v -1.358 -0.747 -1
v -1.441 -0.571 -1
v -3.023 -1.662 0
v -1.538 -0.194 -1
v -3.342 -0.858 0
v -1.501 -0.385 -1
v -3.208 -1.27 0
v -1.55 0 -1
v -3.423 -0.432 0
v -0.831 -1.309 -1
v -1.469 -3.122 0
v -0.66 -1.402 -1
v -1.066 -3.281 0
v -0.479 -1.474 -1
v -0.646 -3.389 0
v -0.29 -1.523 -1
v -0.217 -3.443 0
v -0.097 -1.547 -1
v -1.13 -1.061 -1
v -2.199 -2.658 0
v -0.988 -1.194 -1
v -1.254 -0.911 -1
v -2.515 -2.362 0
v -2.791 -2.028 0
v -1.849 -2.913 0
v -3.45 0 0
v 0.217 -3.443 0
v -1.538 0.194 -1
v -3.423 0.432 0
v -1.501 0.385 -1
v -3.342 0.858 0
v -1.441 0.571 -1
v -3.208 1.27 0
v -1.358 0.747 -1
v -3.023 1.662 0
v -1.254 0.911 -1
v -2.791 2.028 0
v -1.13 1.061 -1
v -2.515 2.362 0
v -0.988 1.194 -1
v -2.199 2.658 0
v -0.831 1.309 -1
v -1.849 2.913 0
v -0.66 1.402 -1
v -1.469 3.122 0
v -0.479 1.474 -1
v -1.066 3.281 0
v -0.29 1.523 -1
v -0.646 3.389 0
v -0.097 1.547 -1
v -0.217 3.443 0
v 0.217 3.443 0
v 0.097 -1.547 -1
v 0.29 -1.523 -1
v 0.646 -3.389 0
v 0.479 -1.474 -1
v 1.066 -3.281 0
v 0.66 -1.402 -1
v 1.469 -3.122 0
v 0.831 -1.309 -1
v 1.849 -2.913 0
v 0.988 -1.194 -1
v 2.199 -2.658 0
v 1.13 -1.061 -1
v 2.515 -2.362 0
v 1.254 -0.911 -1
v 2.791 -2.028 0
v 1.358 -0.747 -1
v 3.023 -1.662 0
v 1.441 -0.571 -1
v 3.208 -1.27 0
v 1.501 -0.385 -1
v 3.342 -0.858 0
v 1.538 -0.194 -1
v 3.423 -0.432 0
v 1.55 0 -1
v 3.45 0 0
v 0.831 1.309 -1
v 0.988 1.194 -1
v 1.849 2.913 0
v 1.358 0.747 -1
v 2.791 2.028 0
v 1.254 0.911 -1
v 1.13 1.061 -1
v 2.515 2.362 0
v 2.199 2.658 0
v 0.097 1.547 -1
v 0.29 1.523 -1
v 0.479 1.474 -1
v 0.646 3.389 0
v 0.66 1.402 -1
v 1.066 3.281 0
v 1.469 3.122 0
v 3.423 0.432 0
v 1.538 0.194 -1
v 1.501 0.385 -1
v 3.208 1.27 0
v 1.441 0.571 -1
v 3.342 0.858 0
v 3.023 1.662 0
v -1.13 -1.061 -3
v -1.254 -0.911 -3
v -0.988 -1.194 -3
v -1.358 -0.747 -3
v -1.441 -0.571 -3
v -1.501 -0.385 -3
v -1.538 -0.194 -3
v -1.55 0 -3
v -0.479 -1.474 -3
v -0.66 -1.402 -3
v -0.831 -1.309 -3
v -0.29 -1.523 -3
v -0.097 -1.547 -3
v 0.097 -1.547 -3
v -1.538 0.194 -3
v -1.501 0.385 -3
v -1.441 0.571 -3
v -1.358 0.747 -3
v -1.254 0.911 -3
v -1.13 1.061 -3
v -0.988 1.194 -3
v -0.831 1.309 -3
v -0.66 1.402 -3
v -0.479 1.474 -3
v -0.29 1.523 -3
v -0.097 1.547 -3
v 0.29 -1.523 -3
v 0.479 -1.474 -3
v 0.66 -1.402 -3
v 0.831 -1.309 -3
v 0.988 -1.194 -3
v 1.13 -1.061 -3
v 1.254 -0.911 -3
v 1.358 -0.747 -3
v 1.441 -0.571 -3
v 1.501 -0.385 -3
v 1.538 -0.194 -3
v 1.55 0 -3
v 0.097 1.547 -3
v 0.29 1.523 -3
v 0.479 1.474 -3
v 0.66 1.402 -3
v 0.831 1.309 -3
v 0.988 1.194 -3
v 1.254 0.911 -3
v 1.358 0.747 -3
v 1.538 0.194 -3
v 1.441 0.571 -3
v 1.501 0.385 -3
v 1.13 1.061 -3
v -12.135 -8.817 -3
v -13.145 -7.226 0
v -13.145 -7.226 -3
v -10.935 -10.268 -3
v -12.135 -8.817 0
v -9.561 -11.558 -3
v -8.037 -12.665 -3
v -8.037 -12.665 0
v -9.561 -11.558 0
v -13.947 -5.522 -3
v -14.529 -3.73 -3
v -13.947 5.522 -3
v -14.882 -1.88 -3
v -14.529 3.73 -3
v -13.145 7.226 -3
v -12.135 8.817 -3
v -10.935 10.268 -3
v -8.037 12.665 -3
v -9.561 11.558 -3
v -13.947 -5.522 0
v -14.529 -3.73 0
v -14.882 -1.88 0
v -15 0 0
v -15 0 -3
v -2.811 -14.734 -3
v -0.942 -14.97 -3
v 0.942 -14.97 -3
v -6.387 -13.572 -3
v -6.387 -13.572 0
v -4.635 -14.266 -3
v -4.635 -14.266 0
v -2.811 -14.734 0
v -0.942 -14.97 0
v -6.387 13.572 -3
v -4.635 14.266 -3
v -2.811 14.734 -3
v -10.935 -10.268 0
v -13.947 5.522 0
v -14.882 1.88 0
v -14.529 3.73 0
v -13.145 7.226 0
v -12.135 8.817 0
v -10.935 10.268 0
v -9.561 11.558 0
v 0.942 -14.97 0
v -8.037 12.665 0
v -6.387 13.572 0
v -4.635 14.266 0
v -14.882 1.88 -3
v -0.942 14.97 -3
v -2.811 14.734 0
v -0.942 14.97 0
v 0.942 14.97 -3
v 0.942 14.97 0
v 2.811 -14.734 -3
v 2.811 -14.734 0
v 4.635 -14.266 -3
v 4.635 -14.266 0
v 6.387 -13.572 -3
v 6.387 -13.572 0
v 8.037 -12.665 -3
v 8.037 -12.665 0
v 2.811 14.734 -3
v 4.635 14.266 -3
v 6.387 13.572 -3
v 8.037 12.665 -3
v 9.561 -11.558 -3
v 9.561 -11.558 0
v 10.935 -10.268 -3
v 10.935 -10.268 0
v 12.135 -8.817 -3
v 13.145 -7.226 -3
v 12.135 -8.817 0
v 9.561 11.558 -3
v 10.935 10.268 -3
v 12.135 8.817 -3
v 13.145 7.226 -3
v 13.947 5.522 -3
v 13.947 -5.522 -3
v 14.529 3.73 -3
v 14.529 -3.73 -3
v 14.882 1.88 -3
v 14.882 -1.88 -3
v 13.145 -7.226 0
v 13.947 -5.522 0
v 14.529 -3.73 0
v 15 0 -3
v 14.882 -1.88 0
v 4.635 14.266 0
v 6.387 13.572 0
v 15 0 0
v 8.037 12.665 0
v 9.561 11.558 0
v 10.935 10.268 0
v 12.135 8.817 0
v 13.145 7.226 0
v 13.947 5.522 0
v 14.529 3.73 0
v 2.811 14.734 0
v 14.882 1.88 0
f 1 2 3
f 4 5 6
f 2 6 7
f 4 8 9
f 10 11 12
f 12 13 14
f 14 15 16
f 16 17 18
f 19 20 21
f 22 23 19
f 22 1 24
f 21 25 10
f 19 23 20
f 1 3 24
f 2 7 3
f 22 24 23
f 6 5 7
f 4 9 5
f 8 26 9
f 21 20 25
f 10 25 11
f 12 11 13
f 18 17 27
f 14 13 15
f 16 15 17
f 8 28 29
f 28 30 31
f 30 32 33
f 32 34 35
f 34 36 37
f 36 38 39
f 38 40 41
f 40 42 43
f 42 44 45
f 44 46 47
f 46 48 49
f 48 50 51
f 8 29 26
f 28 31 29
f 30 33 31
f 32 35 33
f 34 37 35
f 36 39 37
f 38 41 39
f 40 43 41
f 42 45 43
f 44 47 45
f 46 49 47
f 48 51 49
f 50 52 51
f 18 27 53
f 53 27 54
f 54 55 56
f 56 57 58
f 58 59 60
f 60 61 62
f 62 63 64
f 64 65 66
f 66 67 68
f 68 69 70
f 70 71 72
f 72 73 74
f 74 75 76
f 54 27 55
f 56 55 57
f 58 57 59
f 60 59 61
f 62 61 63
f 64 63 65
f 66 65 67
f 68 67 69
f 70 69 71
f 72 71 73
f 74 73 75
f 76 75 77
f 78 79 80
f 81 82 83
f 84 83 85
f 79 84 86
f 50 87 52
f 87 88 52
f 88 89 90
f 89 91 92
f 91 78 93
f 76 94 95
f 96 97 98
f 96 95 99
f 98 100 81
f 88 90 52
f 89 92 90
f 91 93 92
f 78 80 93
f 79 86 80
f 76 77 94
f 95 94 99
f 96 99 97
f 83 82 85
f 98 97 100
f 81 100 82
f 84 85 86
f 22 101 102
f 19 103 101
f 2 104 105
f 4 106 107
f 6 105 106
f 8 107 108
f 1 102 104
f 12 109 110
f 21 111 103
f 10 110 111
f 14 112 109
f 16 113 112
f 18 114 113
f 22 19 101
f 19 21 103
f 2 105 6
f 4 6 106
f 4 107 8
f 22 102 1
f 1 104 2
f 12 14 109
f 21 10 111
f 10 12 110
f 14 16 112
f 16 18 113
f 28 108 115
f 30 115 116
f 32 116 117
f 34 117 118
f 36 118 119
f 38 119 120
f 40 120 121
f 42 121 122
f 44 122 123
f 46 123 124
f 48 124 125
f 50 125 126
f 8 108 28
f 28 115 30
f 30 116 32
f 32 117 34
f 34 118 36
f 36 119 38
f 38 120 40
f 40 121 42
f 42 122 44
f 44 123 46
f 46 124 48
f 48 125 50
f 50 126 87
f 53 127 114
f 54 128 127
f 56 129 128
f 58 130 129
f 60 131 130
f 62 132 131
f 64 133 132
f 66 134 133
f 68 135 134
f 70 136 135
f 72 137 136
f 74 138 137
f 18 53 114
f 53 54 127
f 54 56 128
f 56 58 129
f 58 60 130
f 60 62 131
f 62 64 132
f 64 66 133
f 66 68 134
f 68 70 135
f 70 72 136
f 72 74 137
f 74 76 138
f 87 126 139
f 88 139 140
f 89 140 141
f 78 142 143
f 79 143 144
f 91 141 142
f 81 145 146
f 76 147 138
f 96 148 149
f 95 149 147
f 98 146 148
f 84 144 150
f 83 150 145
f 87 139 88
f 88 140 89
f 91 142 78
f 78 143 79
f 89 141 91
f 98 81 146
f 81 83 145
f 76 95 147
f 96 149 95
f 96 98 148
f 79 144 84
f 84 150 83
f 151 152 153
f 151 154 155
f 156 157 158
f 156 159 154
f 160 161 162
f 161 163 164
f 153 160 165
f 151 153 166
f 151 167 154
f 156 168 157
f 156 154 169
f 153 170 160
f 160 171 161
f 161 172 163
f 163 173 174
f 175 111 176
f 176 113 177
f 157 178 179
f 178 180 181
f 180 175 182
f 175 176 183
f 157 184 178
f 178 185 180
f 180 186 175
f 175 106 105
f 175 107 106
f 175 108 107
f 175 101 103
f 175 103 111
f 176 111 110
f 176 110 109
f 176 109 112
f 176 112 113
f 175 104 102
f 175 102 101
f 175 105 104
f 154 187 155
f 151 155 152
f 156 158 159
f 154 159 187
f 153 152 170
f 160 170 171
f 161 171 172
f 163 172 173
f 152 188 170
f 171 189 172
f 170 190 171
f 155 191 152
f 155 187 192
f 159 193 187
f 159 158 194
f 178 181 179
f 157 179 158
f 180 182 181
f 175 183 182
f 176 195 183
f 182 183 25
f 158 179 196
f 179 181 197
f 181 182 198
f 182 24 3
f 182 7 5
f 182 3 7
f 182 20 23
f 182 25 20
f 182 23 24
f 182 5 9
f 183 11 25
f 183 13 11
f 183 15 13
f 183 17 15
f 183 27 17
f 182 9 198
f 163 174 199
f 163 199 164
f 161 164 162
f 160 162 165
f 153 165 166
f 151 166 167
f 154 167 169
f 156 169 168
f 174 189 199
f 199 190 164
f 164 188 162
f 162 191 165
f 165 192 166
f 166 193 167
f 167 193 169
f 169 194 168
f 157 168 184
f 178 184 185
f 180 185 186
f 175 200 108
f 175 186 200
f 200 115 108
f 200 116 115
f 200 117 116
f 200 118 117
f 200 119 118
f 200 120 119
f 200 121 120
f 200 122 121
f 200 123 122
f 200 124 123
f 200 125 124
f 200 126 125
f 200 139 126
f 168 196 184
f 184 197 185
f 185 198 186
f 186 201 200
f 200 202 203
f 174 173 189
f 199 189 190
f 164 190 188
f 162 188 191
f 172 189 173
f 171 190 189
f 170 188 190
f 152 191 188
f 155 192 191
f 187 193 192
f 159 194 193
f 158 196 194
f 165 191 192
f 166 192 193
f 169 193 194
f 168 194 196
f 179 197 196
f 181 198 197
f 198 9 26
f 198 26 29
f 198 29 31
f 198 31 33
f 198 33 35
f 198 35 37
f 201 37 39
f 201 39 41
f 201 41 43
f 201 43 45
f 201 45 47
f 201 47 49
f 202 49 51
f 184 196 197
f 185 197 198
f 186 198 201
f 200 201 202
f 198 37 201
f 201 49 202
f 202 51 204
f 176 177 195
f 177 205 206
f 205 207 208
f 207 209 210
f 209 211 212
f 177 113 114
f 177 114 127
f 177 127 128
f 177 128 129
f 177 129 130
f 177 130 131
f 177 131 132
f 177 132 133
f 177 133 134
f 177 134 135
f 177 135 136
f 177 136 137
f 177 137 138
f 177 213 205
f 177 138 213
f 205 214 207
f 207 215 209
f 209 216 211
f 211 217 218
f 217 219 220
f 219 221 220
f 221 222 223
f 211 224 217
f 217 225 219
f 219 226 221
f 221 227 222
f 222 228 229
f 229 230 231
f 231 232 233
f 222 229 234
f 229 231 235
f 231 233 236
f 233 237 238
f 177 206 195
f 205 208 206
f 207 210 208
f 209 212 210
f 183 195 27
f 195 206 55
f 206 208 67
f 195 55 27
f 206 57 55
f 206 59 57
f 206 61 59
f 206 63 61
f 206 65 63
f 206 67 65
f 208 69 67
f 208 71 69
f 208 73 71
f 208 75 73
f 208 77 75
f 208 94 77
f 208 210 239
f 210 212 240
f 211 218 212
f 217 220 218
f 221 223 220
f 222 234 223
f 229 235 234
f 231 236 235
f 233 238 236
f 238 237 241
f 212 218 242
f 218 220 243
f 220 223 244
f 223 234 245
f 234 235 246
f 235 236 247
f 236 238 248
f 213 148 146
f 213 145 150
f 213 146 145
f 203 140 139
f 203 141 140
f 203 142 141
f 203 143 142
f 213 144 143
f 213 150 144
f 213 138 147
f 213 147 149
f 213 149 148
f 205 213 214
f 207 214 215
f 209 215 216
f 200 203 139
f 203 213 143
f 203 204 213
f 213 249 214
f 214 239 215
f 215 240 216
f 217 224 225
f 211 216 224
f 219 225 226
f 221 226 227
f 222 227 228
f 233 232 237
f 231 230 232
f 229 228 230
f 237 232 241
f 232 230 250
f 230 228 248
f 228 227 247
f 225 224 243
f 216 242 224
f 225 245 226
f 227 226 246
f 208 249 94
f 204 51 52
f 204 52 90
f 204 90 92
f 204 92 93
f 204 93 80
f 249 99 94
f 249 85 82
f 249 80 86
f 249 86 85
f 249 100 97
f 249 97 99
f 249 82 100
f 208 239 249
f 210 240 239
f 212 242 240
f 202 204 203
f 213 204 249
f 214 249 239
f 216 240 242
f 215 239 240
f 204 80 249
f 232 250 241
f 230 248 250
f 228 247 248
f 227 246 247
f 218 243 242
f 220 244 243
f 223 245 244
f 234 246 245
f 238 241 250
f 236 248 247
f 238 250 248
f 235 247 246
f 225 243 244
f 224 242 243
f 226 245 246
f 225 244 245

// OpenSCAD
$fn = 50;

difference() {
	union() {
		translate(v = [0, 0, -3.0]) {
			cylinder(h = 3, r = 15.0);
		}
	}
	union() {
		translate(v = [0, 0, 0]) {
			rotate(a = [0, 0, 0]) {
				difference() {
					union() {
						translate(v = [0, 0, -6.0]) {
							cylinder(h = 6, r = 1.25);
						}
						translate(v = [0, 0, -1.0]) {
							cylinder(h = 1.0, r1 = 1.55, r2 = 3.45);
						}
						translate(v = [0, 0, -6.0]) {
							cylinder(h = 6, r = 1.55);
						}
						translate(v = [0, 0, -6.0]) {
							cylinder(h = 6, r = 1.25);
						}
					}
					union();
				}
			}
		}
	}
}
